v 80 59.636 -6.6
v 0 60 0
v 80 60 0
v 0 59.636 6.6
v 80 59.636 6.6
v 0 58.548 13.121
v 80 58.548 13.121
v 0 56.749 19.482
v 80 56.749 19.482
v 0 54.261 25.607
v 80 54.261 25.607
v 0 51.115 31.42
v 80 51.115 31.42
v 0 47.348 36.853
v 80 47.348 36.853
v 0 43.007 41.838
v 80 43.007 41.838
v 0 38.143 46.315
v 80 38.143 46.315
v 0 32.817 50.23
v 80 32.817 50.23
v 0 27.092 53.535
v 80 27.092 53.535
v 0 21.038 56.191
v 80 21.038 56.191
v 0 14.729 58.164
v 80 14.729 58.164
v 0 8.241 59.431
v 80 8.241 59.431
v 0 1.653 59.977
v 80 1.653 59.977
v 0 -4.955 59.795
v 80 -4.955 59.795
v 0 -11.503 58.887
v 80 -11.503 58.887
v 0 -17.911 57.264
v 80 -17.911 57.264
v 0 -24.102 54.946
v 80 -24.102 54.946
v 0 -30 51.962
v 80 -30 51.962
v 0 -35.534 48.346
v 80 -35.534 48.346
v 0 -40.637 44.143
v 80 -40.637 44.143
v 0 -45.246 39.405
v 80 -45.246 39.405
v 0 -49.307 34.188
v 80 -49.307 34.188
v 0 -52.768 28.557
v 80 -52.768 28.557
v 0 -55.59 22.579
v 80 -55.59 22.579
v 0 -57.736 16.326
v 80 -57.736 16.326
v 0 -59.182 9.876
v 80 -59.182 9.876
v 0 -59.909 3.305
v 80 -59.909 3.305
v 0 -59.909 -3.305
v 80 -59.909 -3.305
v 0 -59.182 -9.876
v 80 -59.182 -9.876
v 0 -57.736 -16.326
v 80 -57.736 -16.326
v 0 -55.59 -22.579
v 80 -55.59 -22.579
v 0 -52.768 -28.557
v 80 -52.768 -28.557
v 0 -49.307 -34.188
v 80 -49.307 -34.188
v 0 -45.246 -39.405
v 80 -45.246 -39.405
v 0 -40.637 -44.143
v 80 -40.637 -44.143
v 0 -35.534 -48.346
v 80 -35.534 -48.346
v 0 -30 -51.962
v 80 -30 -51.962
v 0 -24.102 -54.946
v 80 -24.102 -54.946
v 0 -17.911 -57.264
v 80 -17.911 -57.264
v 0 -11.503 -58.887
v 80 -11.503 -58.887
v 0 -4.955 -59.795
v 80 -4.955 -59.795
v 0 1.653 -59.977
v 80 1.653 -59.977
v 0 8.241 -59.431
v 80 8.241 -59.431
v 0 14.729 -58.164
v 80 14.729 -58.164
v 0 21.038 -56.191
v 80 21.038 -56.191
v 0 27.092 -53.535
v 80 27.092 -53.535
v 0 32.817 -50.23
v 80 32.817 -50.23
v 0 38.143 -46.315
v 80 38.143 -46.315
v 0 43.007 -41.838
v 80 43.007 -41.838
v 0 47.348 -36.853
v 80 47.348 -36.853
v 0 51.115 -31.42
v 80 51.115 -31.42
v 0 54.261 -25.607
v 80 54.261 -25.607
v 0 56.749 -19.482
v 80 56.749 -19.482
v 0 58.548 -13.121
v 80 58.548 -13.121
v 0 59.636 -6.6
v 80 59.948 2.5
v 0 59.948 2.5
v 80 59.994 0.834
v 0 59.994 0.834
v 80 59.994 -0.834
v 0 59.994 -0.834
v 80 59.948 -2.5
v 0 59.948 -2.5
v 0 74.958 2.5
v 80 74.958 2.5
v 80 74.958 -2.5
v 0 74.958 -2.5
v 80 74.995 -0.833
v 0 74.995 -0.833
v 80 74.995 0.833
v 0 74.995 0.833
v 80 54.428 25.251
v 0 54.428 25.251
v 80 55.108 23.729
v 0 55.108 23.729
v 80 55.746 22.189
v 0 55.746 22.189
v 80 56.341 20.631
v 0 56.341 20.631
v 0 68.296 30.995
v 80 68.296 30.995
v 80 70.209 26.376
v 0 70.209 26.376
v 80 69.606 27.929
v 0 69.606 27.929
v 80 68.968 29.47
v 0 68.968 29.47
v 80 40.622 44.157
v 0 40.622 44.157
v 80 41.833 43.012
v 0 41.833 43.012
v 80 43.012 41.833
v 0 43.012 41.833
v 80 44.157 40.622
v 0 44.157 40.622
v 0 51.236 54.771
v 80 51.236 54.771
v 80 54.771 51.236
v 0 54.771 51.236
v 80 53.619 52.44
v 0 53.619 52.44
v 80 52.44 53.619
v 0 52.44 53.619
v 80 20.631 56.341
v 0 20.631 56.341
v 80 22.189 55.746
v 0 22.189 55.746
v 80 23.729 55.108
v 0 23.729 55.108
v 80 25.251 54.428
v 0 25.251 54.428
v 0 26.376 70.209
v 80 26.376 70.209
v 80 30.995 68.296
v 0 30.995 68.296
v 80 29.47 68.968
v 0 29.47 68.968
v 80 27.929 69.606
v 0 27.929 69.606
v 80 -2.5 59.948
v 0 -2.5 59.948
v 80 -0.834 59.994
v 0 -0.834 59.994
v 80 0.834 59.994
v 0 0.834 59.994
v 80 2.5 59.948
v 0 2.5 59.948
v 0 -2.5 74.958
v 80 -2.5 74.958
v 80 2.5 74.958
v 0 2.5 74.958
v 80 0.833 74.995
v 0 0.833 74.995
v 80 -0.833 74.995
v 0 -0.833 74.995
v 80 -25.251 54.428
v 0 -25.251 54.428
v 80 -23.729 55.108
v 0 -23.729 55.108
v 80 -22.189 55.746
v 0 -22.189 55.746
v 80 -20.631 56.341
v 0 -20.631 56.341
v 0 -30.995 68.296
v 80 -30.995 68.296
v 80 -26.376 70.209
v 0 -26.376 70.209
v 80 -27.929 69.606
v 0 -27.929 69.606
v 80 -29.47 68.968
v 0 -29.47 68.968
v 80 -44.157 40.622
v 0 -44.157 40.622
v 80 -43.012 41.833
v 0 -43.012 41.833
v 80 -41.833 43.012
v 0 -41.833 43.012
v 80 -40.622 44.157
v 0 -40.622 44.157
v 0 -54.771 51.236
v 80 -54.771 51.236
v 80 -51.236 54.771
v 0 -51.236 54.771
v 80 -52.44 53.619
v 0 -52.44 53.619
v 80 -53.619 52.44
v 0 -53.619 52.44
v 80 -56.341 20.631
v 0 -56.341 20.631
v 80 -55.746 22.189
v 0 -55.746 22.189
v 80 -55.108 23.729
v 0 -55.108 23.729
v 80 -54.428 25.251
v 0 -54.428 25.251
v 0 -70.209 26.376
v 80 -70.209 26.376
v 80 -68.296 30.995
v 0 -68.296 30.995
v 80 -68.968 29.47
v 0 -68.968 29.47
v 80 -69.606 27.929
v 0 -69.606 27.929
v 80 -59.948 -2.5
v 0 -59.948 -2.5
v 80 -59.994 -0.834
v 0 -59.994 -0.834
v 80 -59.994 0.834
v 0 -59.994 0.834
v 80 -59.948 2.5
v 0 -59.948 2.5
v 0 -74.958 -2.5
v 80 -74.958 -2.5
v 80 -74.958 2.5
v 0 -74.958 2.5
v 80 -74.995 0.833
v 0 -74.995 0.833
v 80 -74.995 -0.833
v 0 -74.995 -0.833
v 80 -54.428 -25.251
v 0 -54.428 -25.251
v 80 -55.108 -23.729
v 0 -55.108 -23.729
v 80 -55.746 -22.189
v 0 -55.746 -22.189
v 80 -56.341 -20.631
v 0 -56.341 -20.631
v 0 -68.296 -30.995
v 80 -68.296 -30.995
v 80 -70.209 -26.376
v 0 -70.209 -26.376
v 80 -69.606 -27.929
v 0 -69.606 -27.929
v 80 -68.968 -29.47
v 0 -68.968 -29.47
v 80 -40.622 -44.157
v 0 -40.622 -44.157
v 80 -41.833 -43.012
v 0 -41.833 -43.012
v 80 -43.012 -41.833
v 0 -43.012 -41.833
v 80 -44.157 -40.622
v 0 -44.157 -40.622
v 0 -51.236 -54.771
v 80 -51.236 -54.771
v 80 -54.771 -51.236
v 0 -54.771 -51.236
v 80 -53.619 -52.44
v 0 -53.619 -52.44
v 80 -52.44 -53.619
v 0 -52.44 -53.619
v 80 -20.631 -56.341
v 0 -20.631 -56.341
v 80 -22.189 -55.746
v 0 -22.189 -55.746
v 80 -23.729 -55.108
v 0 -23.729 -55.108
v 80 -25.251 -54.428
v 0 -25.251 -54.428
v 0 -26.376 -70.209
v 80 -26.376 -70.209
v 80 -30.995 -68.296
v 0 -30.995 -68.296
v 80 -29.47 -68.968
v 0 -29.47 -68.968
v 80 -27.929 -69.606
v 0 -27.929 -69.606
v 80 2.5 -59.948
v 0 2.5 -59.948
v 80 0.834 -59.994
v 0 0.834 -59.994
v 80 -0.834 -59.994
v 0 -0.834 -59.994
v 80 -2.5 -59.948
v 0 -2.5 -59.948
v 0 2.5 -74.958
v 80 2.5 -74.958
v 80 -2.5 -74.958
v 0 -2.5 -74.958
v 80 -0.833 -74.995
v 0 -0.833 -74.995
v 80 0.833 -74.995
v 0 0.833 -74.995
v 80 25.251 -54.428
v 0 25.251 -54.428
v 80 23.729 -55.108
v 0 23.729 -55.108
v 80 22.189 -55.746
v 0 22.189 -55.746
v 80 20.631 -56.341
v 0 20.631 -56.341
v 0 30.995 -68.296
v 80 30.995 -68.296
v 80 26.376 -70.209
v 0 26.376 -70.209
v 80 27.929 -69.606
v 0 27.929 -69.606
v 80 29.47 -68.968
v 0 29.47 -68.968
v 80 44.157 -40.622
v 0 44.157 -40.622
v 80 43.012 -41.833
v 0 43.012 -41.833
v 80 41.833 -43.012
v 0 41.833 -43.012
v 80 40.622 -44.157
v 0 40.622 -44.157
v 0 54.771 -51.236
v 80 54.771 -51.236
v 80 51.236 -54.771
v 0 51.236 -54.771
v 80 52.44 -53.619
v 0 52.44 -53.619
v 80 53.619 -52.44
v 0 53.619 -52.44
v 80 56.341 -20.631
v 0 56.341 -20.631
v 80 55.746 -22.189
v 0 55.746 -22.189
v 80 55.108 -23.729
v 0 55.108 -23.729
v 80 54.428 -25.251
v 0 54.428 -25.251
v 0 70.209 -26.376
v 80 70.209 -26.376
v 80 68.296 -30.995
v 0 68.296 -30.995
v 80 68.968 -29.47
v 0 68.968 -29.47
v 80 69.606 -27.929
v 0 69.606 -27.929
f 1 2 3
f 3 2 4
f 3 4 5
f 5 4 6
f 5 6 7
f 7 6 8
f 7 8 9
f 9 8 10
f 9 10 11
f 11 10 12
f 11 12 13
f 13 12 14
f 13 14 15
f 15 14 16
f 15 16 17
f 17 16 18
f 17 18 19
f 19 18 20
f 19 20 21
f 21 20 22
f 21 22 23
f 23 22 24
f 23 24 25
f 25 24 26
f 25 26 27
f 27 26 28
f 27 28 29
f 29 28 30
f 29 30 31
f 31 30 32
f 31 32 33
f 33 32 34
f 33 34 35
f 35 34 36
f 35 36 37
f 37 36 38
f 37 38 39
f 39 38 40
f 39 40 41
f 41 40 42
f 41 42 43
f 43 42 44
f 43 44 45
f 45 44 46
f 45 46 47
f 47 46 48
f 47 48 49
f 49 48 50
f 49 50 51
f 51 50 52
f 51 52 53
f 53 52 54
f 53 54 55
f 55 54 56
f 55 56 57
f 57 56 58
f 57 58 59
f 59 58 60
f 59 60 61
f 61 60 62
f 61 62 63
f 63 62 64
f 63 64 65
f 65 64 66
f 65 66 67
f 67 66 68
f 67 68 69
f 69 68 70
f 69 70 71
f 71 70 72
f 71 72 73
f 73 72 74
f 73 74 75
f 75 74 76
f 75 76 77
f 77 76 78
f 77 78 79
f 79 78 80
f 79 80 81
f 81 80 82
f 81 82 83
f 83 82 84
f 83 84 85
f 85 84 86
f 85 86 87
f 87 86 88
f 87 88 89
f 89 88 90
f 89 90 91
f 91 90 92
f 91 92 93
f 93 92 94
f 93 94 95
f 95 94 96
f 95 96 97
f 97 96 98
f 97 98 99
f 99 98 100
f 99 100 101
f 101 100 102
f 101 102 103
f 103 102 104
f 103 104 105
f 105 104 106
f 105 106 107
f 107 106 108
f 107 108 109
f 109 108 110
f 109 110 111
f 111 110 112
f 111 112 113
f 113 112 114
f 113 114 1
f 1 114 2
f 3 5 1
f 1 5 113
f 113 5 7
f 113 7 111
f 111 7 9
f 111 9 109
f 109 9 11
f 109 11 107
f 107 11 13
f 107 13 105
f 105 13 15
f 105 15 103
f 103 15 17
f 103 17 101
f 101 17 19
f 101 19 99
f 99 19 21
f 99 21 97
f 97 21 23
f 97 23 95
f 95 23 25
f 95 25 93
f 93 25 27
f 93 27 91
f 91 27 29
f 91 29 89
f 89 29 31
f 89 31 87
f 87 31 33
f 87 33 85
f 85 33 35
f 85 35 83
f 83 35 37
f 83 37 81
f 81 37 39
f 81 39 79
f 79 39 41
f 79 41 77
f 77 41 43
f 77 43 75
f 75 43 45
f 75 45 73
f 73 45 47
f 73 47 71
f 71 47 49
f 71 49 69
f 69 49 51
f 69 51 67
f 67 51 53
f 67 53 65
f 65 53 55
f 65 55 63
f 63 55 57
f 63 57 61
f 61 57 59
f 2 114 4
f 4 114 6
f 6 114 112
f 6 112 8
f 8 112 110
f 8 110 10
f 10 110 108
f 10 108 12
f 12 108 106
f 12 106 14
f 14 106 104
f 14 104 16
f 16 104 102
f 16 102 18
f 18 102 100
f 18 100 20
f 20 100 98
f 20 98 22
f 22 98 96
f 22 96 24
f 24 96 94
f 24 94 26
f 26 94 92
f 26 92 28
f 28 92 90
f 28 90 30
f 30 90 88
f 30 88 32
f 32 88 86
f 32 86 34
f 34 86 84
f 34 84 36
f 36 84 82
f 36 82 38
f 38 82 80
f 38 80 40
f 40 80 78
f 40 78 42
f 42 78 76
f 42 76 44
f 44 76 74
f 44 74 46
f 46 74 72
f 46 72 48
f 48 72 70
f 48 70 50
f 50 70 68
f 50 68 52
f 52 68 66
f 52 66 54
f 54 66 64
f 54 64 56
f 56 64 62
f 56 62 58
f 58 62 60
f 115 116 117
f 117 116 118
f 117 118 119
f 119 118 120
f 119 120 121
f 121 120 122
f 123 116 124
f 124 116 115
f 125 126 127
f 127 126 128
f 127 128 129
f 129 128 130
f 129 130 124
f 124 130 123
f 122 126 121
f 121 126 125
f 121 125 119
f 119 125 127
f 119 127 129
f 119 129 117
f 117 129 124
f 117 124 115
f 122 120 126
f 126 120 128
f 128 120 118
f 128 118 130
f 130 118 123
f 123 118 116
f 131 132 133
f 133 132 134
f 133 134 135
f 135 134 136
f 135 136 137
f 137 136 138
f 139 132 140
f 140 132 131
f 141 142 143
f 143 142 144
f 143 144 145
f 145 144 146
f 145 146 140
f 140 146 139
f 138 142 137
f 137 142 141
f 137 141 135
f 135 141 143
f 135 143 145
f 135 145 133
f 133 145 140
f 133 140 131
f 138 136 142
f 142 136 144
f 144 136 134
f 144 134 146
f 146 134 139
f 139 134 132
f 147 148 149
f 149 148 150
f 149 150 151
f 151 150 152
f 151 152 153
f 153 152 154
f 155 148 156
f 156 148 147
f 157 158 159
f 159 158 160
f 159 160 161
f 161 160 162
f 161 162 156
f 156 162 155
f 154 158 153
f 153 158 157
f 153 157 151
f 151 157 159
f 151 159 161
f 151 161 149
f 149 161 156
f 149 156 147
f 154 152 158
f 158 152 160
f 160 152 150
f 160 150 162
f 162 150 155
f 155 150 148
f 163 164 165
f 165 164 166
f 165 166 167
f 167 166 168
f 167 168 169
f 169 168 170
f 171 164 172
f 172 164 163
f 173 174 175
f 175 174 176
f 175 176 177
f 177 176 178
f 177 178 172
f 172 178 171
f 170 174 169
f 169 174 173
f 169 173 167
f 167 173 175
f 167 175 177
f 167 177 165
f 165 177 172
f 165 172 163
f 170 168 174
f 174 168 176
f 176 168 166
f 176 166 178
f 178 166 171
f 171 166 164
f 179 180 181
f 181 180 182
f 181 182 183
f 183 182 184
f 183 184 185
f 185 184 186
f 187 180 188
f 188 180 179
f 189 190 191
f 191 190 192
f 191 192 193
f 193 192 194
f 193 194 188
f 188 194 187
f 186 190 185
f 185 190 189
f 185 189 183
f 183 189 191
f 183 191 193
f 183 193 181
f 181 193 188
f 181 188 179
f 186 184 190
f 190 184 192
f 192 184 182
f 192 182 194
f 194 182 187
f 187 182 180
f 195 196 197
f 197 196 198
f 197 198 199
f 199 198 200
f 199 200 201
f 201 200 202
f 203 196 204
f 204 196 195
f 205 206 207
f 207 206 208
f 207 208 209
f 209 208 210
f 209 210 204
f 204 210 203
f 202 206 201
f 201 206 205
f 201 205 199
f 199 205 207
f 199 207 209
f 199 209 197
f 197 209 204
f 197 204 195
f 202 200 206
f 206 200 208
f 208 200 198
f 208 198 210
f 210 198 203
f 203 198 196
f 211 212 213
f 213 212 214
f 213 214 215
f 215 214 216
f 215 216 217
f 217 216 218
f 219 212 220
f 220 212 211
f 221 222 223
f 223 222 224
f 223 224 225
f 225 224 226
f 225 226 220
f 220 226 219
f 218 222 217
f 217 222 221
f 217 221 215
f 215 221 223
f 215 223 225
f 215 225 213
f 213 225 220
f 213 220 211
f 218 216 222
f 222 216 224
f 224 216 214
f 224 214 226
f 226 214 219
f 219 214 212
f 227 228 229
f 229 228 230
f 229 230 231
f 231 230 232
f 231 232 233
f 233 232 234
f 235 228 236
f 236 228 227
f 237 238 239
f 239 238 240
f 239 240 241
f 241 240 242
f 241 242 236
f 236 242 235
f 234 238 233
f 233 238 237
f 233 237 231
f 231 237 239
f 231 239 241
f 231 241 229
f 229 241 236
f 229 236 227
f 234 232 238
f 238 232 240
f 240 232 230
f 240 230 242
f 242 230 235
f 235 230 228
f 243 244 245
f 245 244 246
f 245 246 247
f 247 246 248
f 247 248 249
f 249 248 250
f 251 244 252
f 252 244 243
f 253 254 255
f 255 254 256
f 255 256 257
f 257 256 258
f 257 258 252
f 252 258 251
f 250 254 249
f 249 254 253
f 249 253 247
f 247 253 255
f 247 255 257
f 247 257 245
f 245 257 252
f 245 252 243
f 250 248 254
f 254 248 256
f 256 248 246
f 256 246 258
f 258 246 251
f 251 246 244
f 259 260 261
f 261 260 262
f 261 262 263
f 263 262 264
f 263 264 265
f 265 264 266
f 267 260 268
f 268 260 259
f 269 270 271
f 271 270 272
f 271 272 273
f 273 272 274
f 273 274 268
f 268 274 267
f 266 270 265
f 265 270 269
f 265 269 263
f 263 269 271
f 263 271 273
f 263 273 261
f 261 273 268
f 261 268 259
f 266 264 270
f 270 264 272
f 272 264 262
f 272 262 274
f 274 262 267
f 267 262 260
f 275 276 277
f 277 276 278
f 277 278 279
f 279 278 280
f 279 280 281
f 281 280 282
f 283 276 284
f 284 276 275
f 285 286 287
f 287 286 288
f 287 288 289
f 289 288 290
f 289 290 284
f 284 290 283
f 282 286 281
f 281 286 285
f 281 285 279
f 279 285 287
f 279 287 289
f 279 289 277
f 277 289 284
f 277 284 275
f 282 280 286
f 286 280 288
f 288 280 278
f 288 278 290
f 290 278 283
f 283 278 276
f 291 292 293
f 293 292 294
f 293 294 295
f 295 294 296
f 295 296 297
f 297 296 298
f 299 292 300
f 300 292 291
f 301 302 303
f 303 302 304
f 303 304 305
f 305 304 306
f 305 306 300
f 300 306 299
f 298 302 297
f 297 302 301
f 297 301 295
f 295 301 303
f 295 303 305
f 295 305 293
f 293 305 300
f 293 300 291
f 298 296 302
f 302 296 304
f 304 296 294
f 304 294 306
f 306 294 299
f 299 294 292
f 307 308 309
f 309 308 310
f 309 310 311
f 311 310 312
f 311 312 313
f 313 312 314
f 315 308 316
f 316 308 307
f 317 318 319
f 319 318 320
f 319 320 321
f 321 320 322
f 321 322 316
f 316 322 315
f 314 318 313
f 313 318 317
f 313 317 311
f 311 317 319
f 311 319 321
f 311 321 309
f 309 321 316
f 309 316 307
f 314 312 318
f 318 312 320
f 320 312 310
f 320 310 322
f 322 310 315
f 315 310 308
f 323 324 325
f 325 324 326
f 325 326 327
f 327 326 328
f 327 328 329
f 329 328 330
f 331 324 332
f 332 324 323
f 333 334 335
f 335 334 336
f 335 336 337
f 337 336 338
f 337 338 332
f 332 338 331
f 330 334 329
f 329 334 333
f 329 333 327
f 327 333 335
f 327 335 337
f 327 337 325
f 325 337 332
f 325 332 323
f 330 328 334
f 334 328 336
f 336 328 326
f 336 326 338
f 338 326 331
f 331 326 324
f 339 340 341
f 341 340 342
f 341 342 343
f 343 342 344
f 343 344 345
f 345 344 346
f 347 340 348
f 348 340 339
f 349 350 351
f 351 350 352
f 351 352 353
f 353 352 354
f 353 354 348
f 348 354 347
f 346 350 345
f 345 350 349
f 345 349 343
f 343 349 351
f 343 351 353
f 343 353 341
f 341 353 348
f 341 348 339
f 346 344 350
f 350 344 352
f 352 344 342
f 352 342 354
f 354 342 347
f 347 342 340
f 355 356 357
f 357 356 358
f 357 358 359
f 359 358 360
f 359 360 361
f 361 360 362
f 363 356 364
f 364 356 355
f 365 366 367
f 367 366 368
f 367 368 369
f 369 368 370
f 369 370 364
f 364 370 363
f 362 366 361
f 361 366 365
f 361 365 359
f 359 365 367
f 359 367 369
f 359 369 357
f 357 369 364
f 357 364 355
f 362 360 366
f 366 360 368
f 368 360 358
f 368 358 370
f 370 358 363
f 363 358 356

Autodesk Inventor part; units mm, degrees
ref_plane "YZ Plane" through (0, 0, 0) normal (1, 0, 0) x (0, 1, 0)
ref_plane "XZ Plane" through (0, 0, 0) normal (0, 1, 0) x (-1, 0, 0)
ref_plane "XY Plane" through (0, 0, 0) normal (0, 0, 1) x (1, 0, 0)
sketch "スケッチ1" plane through (0, 0, 0) normal (1, 0, 0) x (0, 1, 0)
  circle A0 centre (0, 0) radius 75
  circle A1 centre (0, 0) radius 60
  line L0 (45, 2.5) -> (75, 2.5)
  line L1 (75, 2.5) -> (75, -2.5)
  line L2 (75, -2.5) -> (45, -2.5)
  line L3 (45, -2.5) -> (45, 2.5)
  line L4 (45, 2.5) -> (75, -2.5) construction
  line L5 (75, 2.5) -> (45, -2.5) construction
  line L6 (75, 0) -> (0, 0)
  point P0 (60, 0)
  point P1 (59.9479, -2.5)
  point P2 (74.9583, -2.5)
  point P3 (74.9583, 2.5)
  point P4 (59.9479, 2.5)
  dimension "d0" = 150
  dimension "d1" = 120
  dimension "d2" = 5
extrude "押し出し1" add sketch "スケッチ1" along normal blind 80 contours L6 L3 L0 A1 | A1 L2 L3 L6 | L0 L3 L2 A1
extrude "押し出し2" add sketch "スケッチ1" along normal blind 80 separate body contours L6 A1 L0 A0 | A0 L2 A1 L6
pattern_circular "円形状パターン1" count 16 over 360 about axis through (-10, 0, 0) along (1, 0, 0) of "押し出し2" bodies 2
properties part number "wheel"
